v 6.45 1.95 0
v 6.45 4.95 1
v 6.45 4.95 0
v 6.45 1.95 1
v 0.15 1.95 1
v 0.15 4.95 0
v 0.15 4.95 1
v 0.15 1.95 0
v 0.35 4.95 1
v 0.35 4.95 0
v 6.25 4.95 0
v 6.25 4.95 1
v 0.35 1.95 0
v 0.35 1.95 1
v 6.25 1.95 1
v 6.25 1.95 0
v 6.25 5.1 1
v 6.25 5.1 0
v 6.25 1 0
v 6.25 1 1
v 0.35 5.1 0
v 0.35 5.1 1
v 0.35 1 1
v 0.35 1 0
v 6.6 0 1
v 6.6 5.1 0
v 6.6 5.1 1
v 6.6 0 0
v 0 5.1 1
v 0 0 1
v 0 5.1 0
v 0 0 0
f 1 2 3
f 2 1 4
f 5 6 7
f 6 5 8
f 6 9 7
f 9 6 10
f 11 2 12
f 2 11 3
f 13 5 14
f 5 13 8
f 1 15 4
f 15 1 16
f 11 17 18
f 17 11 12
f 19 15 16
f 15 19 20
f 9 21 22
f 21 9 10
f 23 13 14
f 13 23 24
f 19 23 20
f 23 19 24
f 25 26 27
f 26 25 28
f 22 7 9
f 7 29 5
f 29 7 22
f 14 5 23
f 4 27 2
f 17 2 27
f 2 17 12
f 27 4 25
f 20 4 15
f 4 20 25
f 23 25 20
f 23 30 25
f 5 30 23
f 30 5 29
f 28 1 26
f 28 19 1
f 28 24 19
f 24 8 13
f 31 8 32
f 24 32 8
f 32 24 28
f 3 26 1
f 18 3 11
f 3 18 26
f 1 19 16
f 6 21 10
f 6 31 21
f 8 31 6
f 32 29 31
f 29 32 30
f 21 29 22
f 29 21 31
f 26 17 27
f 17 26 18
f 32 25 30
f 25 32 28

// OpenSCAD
width=6.2; // x
depth=2.9; // y
height=1; // z
holeWidth=2;

extra=0.05;
extraHole=1;
f=0.2;
g=0.2;
h=0.2;
i=0.2;

difference(){
    // A
    cube([width+(2*g),depth+holeWidth+f,height]);
    // B + C
    union(){
        translate([g-extra,2-extra,-extraHole/2]){
            //B
            cube([width+(2*extra),depth+(2*extra),height+extraHole]);
        }
        translate([g+h-extra,1,-extraHole/2]){
            //C
            cube([width-(2*i)+(2*extra),depth+(2*extra)+1+extraHole,height+extraHole]);
        }
    }
}
